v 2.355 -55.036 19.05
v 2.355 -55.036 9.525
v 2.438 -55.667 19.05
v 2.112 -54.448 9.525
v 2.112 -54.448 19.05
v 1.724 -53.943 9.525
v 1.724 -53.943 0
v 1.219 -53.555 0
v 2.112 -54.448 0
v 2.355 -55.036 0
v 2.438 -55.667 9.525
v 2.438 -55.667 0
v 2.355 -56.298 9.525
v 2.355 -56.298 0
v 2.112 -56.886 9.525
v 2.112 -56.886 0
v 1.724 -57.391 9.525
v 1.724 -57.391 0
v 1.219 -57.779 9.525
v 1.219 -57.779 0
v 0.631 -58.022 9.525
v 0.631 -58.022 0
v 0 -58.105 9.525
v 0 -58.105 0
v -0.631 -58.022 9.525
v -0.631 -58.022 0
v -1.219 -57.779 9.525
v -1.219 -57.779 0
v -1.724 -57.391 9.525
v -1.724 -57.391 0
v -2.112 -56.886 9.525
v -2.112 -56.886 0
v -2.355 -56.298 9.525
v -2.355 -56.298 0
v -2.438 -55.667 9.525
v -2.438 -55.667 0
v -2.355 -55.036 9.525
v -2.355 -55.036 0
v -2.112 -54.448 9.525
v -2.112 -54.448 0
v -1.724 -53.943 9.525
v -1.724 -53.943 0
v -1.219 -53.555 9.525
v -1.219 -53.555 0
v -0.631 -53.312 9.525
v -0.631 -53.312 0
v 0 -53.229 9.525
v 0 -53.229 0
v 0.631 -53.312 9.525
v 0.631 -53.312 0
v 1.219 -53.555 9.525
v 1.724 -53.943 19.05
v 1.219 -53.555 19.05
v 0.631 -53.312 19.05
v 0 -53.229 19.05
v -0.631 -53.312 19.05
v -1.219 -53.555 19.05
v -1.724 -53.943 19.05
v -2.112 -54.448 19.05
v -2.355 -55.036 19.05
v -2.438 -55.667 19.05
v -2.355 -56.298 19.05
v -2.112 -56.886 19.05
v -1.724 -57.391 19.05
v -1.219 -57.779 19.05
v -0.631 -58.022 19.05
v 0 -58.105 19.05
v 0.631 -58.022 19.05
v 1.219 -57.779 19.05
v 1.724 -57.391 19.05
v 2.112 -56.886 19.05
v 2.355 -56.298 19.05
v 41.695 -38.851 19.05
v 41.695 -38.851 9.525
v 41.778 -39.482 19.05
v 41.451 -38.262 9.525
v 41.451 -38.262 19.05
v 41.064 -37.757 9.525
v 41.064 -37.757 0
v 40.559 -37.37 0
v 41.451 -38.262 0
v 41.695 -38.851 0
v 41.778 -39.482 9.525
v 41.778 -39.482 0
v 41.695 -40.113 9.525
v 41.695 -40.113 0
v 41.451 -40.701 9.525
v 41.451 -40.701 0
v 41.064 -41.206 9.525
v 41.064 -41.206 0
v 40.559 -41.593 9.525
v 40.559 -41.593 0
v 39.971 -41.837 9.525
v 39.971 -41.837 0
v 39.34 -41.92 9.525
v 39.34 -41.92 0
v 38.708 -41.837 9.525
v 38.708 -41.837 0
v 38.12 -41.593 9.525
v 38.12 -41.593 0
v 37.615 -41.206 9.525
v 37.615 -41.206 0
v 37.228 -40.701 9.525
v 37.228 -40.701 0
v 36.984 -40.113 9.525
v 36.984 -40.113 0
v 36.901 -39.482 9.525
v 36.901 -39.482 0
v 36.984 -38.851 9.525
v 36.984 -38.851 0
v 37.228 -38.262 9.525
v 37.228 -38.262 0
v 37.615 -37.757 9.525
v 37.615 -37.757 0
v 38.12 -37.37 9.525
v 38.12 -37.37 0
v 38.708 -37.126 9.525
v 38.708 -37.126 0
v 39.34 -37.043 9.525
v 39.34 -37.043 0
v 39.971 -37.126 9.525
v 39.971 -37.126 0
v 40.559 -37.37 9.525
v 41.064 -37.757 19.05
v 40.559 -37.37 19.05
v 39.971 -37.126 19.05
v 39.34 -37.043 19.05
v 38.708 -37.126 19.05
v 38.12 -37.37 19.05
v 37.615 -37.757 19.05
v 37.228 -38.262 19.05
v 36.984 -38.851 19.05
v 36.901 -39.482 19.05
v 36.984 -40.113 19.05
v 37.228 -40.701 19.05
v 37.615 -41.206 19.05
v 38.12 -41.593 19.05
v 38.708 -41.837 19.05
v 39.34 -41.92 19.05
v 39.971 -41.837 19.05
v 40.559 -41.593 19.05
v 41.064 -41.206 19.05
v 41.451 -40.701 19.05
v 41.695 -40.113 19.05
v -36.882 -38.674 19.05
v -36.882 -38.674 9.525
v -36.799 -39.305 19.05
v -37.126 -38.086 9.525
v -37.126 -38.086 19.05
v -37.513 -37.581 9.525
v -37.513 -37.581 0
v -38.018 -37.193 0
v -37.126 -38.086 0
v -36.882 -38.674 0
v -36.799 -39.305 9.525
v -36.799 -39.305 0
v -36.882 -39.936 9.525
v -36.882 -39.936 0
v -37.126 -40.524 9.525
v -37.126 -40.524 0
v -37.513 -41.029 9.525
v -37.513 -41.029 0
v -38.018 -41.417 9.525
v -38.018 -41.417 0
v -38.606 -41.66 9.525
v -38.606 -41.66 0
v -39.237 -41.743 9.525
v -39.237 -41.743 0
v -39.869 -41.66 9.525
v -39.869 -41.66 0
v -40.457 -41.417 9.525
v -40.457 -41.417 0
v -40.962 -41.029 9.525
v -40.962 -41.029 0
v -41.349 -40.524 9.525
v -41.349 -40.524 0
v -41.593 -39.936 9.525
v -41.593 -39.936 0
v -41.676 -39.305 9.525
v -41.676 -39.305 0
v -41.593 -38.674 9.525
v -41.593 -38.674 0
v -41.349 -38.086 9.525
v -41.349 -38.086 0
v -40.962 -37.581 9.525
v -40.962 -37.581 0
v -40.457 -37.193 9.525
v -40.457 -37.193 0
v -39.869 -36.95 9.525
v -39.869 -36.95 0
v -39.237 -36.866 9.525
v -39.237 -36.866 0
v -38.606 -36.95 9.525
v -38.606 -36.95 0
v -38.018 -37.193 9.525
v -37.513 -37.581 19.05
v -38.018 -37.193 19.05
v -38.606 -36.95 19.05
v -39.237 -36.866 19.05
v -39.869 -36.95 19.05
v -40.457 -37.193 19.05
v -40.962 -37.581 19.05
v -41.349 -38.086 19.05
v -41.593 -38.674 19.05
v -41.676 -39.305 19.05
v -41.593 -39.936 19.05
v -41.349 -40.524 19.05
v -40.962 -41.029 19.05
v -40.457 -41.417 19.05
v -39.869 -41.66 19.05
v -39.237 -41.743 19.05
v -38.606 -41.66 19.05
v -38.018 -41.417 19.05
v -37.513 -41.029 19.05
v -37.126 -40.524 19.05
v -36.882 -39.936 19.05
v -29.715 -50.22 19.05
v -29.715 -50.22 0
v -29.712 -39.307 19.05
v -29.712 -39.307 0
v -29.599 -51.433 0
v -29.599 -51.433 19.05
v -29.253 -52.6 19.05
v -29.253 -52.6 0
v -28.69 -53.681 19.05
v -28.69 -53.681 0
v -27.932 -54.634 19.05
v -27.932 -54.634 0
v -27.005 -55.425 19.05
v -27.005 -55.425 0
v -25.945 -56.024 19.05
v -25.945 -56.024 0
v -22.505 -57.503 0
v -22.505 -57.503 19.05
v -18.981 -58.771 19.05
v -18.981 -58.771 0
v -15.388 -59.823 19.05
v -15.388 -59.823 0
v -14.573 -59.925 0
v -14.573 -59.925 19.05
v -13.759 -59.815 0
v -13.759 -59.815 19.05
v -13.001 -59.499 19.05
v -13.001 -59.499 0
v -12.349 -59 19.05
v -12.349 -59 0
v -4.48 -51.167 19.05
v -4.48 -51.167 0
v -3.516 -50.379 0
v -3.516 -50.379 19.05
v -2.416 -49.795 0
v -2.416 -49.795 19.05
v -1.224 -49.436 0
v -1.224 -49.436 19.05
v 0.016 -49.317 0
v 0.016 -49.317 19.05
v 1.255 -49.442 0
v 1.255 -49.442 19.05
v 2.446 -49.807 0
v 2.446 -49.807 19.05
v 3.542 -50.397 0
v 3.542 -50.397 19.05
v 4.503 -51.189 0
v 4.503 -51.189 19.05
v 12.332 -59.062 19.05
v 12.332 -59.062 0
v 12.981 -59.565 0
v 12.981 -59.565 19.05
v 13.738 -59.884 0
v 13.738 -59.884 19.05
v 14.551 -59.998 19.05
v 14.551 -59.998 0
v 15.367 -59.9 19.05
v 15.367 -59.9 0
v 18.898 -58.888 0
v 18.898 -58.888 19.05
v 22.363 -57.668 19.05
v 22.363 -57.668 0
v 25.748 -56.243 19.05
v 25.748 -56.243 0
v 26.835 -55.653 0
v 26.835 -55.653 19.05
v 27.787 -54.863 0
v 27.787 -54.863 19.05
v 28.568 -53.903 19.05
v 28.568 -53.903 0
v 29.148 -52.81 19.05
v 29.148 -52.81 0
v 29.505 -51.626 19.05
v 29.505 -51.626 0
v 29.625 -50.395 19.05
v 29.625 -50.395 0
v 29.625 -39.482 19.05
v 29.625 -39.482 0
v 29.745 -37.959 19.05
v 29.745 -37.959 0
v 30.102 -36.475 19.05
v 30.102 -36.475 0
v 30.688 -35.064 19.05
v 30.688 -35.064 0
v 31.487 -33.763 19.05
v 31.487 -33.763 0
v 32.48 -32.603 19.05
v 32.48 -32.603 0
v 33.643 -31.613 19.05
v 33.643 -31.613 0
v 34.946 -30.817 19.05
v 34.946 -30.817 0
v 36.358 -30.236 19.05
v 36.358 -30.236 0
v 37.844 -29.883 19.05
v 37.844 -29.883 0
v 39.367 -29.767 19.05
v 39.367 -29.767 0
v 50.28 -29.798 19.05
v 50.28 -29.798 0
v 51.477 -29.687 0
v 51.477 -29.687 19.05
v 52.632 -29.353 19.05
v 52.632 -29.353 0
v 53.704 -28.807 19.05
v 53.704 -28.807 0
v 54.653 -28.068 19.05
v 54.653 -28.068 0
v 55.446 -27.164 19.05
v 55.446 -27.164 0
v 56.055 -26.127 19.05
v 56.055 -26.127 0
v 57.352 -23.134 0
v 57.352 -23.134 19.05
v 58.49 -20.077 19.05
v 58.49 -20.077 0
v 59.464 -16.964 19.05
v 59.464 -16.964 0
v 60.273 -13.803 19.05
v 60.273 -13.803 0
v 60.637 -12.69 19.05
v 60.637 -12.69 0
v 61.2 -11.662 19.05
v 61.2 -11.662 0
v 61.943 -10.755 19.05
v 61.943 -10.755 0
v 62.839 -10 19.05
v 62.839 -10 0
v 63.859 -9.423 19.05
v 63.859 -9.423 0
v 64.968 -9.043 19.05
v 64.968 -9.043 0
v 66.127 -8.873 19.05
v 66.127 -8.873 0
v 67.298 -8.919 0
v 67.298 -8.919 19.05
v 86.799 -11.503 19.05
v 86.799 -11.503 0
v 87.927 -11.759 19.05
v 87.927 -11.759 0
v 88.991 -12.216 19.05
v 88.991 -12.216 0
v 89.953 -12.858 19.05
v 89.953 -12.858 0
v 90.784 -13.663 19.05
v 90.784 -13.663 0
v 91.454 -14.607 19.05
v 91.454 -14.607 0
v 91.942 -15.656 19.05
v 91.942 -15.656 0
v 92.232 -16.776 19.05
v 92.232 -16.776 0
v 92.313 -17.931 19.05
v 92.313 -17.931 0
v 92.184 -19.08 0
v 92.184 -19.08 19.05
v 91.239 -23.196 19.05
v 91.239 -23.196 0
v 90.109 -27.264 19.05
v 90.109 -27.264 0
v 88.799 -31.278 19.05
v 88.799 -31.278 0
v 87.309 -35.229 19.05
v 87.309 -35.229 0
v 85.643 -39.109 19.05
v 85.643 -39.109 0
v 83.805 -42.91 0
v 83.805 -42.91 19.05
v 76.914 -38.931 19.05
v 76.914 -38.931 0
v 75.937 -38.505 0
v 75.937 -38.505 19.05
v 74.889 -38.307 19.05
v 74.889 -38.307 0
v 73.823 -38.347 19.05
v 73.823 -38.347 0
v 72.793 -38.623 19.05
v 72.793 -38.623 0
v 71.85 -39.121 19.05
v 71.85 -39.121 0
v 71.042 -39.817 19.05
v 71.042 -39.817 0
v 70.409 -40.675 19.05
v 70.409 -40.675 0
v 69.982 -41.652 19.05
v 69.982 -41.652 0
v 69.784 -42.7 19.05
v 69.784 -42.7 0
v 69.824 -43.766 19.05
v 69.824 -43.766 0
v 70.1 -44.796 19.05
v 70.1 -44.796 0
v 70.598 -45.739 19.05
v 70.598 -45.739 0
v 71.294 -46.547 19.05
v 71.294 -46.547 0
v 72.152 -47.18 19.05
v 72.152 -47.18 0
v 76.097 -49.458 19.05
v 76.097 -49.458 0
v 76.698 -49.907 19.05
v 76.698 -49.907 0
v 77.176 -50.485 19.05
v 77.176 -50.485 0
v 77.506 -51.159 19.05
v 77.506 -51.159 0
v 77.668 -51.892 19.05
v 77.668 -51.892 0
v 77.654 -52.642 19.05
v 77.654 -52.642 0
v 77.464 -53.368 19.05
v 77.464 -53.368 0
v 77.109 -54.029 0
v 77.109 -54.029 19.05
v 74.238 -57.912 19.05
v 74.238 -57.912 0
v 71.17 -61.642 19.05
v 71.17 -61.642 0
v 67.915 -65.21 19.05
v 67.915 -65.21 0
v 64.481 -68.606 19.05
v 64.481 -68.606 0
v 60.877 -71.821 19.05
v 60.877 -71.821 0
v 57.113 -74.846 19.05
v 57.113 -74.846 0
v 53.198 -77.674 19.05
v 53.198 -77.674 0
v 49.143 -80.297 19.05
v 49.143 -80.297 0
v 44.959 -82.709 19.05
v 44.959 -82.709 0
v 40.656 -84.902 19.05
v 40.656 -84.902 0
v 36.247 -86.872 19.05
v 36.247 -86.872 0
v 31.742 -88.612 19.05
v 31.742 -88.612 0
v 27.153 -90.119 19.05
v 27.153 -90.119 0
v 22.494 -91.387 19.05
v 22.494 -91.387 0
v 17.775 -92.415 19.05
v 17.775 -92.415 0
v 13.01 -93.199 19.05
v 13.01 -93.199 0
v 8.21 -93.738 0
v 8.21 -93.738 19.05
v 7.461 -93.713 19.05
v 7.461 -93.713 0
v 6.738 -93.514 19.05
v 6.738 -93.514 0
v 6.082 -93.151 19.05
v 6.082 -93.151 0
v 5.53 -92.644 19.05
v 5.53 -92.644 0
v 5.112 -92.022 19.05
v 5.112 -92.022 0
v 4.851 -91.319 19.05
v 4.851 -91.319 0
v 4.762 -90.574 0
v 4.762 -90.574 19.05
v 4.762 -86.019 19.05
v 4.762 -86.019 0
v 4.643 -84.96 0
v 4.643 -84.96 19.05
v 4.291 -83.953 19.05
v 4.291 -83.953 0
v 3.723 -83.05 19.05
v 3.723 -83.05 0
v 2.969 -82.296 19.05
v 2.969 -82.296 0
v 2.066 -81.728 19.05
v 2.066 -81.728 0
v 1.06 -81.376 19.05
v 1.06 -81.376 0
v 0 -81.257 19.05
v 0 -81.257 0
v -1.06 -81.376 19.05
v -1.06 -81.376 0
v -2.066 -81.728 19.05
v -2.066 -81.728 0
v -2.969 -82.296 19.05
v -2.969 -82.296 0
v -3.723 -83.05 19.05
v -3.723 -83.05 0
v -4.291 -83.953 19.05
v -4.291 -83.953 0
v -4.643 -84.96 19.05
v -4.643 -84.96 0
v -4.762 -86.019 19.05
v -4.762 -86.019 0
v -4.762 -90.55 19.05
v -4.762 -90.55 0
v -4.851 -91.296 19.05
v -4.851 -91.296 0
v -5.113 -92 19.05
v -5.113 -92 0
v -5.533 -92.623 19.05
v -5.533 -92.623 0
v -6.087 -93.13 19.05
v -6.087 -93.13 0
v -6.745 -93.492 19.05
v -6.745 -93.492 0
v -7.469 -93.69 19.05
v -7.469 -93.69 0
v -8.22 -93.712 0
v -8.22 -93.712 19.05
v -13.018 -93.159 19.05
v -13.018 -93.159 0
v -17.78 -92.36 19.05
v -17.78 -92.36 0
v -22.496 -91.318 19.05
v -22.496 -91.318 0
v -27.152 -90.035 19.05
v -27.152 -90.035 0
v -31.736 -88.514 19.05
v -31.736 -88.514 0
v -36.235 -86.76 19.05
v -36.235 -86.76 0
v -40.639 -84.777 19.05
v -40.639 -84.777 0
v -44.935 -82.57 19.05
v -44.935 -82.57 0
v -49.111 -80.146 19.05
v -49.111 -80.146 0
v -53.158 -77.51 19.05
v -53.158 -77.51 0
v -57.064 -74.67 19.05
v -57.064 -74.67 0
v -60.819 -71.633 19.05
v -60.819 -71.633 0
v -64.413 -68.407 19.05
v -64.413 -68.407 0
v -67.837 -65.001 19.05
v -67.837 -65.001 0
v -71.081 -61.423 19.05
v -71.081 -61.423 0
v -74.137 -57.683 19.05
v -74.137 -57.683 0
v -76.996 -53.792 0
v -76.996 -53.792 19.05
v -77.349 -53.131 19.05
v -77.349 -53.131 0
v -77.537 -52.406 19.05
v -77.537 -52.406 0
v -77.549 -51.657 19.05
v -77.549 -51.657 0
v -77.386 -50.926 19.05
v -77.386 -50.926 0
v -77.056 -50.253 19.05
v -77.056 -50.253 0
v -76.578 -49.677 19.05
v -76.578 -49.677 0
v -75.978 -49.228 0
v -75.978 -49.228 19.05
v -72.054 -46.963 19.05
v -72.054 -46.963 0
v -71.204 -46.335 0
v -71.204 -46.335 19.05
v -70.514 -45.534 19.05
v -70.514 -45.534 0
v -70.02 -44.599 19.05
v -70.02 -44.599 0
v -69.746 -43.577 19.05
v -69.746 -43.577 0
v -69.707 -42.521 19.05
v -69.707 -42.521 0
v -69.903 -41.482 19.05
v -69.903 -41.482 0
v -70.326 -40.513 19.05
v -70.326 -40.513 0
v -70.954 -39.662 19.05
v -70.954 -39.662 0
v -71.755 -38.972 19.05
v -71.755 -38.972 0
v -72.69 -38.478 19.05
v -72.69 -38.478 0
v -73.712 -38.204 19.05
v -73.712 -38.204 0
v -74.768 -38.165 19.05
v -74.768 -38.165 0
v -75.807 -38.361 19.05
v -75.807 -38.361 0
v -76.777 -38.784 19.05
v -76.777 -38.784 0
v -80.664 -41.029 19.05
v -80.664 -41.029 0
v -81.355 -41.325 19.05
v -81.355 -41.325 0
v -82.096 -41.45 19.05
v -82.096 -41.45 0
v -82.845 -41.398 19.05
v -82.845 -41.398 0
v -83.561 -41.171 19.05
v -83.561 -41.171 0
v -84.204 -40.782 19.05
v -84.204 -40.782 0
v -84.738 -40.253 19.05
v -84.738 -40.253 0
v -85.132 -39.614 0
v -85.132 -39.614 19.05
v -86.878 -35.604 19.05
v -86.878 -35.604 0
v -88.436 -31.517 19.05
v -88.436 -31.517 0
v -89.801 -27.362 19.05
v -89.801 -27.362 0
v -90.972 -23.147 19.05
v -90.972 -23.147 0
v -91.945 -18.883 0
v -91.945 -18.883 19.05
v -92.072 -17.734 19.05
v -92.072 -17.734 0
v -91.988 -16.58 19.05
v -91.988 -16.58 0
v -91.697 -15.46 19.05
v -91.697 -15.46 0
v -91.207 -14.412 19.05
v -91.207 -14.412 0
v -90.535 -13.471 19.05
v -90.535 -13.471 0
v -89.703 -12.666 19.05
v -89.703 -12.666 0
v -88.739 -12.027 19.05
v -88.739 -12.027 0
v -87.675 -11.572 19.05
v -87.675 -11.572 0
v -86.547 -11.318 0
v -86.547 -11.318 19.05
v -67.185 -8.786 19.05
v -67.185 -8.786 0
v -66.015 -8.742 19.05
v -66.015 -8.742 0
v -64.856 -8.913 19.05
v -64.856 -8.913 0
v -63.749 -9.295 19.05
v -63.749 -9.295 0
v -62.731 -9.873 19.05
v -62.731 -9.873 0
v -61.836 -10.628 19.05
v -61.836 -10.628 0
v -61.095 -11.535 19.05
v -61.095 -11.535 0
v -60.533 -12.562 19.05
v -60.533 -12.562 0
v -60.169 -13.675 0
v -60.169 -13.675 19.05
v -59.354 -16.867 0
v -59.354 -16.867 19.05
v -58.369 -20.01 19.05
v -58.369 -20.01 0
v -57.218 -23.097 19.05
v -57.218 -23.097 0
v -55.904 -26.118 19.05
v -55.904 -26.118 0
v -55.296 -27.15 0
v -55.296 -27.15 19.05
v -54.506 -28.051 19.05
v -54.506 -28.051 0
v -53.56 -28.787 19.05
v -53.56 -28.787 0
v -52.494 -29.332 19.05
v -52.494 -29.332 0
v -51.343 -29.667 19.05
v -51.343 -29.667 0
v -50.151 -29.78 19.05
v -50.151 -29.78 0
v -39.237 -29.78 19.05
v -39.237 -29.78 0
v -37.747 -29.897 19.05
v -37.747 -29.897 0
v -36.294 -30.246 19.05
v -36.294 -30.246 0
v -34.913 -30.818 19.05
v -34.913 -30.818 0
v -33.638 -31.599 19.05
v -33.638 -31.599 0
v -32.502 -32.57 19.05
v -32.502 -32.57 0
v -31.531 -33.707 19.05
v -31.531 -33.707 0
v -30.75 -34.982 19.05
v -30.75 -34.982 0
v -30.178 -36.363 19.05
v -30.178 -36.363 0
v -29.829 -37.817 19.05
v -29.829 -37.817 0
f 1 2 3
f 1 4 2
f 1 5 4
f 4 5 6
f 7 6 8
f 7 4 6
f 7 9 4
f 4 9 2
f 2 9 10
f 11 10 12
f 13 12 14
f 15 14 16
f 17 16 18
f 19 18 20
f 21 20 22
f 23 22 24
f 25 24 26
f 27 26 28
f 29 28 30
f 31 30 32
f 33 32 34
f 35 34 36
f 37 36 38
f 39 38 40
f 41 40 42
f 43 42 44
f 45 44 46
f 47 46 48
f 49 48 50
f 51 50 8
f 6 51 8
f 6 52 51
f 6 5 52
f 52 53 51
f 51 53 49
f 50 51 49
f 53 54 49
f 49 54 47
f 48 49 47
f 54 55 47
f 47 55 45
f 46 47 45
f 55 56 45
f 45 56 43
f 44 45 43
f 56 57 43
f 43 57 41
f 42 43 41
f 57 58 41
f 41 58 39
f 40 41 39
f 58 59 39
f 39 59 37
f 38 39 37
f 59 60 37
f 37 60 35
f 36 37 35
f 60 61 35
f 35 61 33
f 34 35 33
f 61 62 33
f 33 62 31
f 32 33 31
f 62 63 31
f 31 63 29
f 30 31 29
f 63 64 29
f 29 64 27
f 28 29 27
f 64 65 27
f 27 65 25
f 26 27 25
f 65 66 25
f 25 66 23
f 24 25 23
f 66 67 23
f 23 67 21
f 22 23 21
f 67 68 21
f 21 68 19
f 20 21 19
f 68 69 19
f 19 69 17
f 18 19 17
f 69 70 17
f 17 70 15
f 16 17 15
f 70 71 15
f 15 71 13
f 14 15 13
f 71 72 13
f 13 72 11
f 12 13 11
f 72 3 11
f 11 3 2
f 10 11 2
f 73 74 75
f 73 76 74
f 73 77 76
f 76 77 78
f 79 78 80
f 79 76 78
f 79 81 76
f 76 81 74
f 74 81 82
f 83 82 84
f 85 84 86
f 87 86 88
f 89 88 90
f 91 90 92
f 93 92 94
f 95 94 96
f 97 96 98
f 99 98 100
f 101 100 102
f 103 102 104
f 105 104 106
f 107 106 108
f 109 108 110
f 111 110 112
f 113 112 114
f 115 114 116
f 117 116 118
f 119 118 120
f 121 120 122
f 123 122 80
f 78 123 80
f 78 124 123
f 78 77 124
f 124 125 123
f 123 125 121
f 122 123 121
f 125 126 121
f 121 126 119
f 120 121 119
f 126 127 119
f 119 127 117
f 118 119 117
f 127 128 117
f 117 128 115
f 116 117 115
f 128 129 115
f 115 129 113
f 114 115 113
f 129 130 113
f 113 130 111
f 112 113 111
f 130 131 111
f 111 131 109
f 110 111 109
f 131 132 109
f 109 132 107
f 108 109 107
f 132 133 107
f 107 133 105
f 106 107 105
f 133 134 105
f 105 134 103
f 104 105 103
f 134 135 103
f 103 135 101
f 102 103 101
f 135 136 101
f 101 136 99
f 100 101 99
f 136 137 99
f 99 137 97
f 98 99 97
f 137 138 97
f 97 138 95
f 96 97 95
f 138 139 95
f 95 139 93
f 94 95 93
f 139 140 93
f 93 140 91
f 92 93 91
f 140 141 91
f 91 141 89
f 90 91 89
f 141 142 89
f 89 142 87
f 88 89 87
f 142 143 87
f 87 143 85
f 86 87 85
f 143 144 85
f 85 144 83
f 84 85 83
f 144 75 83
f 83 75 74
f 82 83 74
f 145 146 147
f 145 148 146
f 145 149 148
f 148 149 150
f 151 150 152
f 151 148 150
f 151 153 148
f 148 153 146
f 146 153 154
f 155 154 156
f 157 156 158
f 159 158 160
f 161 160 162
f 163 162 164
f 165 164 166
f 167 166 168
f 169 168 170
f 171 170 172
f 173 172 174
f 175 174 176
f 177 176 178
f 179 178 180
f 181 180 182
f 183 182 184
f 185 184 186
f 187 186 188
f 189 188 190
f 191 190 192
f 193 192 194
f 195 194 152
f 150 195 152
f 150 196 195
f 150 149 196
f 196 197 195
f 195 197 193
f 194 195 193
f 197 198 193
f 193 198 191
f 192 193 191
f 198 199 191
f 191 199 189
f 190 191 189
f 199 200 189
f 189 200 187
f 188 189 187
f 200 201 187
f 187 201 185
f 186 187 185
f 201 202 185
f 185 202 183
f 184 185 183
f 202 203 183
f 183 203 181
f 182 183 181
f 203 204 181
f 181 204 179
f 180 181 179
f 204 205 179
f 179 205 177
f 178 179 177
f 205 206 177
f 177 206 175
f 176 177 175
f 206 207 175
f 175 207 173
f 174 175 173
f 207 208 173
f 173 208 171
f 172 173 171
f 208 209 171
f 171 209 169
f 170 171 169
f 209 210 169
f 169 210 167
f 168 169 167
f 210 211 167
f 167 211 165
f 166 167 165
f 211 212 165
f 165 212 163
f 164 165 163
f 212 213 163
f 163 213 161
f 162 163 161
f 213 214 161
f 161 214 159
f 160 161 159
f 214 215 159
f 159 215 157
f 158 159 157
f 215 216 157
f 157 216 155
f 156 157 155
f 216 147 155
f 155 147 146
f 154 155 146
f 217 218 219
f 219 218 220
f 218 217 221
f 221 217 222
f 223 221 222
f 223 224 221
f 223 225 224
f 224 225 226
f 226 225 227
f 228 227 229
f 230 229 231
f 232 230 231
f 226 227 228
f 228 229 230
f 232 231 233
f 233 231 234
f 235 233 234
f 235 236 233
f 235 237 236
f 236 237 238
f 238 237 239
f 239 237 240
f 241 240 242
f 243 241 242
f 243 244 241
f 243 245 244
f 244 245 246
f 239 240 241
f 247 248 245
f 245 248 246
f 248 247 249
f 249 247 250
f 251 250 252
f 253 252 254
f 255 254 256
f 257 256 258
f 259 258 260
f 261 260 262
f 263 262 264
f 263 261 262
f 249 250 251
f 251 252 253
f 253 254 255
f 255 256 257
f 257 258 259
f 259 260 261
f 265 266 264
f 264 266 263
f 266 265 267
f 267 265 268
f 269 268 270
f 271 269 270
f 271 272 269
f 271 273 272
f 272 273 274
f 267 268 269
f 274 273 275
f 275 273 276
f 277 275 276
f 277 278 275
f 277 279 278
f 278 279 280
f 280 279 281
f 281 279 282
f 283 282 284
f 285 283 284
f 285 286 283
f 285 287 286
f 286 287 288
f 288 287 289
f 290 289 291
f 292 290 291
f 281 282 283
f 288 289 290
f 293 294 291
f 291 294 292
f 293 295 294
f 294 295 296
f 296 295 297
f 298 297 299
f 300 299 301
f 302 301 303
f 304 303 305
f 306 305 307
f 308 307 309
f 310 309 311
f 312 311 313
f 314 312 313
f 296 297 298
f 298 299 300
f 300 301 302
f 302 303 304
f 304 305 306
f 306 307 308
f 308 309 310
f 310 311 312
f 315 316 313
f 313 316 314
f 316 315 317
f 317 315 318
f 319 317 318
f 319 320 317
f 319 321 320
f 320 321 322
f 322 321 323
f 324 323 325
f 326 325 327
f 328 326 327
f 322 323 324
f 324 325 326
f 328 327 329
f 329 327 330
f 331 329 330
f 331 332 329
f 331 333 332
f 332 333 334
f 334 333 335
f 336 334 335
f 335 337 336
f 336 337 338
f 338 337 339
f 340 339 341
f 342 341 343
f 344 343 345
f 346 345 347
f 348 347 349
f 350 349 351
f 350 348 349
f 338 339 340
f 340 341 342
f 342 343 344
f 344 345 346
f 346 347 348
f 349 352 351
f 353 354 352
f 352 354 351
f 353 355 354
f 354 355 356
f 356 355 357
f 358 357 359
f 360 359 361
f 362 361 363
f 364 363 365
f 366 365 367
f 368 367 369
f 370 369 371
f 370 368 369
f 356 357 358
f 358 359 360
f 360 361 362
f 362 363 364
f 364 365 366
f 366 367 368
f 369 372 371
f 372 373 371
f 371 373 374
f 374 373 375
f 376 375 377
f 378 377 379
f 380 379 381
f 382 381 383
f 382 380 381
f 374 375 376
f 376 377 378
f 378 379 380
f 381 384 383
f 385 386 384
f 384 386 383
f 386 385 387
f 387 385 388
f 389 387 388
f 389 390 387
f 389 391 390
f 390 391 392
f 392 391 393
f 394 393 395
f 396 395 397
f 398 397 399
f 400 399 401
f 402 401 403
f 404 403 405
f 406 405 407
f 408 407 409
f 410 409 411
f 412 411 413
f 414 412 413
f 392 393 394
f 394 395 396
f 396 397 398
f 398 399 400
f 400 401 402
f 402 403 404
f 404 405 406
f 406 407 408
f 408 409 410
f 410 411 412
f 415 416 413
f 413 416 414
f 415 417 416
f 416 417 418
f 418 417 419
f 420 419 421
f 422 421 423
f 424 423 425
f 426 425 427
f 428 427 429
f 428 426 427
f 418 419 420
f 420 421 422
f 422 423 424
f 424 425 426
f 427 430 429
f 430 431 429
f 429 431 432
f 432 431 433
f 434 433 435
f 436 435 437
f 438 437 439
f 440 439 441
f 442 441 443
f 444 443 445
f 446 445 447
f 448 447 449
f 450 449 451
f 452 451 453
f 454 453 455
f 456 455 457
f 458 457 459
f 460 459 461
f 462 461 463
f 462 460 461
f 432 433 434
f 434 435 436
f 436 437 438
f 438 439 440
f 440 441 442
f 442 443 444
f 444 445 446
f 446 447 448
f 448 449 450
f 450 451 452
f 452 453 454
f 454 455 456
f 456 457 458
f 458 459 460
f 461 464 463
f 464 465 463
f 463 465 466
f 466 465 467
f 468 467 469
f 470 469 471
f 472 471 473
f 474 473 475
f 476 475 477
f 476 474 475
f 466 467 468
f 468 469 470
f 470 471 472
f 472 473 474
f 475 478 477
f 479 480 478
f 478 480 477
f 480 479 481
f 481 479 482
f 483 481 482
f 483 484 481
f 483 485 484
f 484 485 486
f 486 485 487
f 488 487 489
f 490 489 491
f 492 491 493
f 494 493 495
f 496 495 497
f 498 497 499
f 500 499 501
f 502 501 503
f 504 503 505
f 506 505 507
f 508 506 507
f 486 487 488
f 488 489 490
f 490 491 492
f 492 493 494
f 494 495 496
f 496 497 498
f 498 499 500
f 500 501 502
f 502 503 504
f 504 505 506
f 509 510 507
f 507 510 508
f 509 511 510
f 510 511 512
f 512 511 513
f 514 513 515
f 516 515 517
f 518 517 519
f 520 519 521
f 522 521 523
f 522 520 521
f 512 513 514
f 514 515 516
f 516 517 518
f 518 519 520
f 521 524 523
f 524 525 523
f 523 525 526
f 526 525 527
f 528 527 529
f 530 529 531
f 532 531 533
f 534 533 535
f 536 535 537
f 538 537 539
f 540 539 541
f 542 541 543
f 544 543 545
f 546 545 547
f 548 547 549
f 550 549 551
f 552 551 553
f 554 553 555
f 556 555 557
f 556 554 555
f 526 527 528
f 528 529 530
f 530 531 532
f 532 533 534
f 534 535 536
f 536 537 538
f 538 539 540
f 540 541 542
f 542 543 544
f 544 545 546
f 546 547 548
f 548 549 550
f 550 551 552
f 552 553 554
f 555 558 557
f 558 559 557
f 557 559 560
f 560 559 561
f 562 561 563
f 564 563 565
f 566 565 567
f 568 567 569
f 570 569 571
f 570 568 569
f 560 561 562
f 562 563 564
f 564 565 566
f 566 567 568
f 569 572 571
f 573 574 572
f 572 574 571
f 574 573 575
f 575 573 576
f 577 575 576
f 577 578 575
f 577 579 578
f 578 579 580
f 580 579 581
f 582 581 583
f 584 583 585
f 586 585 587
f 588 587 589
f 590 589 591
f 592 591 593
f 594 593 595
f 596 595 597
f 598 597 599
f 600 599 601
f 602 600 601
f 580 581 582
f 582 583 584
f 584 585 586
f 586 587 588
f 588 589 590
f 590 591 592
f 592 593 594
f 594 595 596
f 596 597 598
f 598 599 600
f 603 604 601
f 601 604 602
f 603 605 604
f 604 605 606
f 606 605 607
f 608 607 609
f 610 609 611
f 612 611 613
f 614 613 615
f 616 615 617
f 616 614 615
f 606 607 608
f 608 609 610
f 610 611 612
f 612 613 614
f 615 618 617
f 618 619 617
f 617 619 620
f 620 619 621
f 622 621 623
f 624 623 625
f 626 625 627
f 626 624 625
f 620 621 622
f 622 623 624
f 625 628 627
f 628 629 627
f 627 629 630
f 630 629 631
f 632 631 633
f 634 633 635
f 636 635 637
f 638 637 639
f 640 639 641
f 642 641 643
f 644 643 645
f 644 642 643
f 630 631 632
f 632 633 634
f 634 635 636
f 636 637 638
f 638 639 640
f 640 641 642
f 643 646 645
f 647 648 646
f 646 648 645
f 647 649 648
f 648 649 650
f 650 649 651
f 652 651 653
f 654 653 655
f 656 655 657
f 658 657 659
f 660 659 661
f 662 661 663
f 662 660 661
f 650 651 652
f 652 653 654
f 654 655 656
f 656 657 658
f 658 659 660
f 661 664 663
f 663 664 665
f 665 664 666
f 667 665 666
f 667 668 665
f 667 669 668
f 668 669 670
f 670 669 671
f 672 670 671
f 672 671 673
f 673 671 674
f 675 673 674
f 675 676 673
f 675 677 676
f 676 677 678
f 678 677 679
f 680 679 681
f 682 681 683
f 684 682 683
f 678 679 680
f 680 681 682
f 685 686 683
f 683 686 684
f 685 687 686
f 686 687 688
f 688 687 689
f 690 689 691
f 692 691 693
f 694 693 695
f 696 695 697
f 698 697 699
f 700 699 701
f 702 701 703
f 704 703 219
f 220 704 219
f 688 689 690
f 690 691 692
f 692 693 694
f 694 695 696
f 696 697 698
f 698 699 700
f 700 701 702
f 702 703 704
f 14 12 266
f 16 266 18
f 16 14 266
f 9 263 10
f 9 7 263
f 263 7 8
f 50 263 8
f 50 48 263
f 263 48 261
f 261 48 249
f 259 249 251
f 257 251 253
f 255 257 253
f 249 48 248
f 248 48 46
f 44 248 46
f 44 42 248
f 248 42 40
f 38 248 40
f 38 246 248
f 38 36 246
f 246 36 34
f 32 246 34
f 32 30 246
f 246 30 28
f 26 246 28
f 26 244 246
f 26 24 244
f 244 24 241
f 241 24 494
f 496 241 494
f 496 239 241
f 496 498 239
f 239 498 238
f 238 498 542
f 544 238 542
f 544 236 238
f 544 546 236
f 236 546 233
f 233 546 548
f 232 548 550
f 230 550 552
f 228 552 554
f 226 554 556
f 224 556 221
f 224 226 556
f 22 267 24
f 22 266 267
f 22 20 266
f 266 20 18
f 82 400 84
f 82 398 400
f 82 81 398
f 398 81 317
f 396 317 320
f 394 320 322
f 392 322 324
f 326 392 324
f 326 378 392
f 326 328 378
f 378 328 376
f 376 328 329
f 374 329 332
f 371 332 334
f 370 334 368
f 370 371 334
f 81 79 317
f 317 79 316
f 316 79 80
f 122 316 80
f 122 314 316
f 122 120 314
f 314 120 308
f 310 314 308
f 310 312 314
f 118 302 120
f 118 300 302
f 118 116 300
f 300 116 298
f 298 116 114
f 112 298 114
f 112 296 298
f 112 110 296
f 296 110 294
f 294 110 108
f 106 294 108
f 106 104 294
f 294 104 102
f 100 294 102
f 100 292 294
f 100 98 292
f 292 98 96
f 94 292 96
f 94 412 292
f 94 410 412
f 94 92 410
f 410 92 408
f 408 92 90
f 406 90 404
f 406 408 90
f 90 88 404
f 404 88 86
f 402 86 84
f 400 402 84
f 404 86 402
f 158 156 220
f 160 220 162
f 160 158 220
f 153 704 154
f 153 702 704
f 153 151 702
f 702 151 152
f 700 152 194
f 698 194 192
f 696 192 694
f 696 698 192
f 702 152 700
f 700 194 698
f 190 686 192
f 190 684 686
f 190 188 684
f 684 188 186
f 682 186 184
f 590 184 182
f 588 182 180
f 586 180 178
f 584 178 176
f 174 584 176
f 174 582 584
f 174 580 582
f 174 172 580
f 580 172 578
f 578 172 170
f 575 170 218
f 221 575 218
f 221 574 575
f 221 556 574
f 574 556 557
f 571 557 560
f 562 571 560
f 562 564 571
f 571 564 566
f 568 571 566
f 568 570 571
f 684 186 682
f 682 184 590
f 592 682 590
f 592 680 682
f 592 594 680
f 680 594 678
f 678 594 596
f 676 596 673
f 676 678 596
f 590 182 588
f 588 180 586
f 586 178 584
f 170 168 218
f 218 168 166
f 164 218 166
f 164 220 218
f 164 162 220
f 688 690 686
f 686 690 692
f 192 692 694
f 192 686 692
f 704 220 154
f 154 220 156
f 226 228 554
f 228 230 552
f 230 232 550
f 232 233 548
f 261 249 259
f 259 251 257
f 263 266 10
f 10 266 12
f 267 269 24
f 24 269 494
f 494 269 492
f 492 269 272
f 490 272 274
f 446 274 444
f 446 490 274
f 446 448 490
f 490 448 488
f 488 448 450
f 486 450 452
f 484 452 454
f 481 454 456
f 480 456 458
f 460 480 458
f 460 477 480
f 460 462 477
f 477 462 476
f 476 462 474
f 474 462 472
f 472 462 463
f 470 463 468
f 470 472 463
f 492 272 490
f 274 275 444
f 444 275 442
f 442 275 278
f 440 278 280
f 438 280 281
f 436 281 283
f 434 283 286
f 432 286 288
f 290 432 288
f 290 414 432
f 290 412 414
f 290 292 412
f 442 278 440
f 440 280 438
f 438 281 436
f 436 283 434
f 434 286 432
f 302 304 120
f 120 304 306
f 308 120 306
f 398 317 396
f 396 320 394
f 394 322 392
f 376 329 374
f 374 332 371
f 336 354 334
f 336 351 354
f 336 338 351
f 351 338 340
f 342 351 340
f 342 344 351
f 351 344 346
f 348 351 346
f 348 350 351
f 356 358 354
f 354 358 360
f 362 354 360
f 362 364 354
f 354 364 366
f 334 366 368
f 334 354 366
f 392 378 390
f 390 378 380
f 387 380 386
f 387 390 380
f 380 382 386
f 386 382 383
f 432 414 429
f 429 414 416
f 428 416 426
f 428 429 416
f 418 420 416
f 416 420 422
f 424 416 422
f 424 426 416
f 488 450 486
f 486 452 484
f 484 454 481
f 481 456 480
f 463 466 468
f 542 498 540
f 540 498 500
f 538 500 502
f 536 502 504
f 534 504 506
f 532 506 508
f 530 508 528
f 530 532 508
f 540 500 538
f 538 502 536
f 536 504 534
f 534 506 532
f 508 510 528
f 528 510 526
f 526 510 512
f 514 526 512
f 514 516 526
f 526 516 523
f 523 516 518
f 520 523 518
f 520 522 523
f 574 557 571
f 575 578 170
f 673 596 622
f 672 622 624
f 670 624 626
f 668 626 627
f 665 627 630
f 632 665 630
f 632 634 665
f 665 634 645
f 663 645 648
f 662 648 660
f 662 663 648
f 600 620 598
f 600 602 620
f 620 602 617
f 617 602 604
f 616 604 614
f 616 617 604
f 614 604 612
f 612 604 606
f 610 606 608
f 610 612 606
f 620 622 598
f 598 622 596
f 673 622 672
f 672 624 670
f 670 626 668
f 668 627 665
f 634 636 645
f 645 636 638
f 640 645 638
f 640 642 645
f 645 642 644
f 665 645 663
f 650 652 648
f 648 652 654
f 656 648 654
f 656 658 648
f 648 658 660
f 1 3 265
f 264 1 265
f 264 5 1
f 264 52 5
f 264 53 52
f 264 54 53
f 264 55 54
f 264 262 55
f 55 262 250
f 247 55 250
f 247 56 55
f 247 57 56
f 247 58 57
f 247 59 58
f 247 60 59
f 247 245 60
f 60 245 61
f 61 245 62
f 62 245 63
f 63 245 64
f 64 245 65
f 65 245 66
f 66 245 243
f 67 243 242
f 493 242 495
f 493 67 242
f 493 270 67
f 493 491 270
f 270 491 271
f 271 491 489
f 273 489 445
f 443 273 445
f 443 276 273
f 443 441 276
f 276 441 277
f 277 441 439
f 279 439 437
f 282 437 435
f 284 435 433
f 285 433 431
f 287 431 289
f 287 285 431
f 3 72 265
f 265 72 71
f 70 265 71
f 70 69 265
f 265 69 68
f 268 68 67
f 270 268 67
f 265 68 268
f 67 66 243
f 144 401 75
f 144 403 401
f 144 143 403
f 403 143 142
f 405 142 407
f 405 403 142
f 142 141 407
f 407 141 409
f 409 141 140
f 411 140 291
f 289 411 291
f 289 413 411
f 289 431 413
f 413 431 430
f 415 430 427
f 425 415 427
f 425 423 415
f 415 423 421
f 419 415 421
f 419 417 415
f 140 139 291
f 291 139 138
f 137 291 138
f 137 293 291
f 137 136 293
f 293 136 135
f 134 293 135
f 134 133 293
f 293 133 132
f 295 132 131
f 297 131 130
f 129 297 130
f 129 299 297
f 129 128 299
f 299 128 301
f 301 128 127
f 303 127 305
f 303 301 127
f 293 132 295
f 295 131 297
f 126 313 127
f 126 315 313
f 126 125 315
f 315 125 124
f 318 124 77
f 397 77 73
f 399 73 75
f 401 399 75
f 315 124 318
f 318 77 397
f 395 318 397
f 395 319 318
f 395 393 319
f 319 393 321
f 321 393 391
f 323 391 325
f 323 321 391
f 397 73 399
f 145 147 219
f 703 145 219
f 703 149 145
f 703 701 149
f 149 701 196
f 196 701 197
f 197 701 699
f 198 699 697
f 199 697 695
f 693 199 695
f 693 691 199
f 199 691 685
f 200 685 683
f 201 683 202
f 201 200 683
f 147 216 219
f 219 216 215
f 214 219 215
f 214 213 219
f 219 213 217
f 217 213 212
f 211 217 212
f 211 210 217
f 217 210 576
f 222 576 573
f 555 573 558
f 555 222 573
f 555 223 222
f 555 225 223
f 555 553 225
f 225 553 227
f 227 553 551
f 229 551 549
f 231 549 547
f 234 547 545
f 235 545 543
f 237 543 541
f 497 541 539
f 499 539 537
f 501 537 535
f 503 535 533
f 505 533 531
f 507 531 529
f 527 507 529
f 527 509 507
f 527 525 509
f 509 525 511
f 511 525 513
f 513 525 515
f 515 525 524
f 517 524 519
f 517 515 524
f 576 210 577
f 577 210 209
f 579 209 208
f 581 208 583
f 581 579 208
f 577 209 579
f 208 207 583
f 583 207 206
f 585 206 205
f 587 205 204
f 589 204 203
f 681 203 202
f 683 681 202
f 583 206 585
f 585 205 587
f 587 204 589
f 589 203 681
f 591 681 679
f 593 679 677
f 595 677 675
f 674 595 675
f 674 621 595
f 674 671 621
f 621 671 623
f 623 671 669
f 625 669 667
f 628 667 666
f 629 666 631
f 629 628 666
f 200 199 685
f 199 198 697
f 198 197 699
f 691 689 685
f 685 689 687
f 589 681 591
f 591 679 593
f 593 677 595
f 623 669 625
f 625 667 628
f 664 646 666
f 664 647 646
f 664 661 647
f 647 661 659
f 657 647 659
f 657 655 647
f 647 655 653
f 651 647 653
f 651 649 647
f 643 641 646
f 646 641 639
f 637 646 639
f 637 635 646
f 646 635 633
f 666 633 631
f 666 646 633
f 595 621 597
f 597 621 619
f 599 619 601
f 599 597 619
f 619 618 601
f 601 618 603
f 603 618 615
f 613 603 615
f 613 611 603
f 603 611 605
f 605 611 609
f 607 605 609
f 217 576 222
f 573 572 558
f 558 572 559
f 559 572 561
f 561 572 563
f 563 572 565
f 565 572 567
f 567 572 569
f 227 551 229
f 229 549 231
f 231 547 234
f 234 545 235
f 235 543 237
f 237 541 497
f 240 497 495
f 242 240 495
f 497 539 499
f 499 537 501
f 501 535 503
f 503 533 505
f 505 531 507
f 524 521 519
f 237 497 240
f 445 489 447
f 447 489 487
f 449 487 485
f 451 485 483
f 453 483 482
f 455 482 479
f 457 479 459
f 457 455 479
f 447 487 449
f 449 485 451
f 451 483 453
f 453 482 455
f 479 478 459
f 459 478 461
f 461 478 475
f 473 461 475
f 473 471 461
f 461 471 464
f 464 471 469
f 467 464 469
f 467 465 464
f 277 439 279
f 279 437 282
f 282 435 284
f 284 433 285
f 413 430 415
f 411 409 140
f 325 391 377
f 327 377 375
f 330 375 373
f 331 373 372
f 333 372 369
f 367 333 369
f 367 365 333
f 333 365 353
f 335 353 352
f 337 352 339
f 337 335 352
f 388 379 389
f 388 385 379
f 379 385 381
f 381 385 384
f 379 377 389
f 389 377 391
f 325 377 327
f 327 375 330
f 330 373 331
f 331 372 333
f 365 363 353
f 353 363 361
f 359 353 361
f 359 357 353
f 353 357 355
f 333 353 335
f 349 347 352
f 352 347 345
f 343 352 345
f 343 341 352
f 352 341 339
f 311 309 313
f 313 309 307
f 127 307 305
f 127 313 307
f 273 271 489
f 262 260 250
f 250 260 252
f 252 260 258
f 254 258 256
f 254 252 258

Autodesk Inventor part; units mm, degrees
ref_plane "YZ Plane" through (0, 0, 0) normal (1, 0, 0) x (0, 1, 0)
ref_plane "XZ Plane" through (0, 0, 0) normal (0, 1, 0) x (-1, 0, 0)
ref_plane "XY Plane" through (0, 0, 0) normal (0, 0, 1) x (1, 0, 0)
sketch "Sketch1" plane through (0, 0, 0) normal (0, 0, 1) x (1, 0, 0)
  line L0 (0, 0) -> (-61.1827, -8.0012) construction
  line L1 (61.2899, -8.1227) -> (0, 0) construction
  line L2 (86.7988, -11.5034) -> (67.2983, -8.919)
  line L3 (-67.1847, -8.7862) -> (-86.5468, -11.3183)
  line L4 (0, 0) -> (0, -62.0753) construction
  line L5 (61.2899, -8.1227) -> (0, -62.0753) construction
  line L6 (-61.1827, -8.0012) -> (0, -62.0753) construction
  arc A0 (-29.7125, -39.3071) -> (-39.2375, -29.7799) centre (-39.2375, -39.3049) ccw
  arc A1 (-60.1692, -13.6752) -> (-55.9036, -26.1177) centre (0, 0) ccw
  arc A2 (56.0545, -26.1271) -> (60.2727, -13.8035) centre (0.1394, -0.1047) ccw
  line L7 (-50.1505, -29.7799) -> (-39.2375, -29.7799)
  line L8 (-29.7125, -39.3071) -> (-29.7151, -50.2201)
  arc A3 (39.3667, -29.7672) -> (29.6251, -39.4816) centre (39.3395, -39.4816) ccw
  line L9 (29.6251, -39.4816) -> (29.6251, -50.3946)
  line L10 (39.3667, -29.7672) -> (50.2797, -29.7978)
  circle A4 centre (0.1394, -0.1047) radius 55.5625 construction
  line L11 (-39.2375, -39.3049) -> (0.1394, -0.1047) construction
  line L12 (0.1394, -0.1047) -> (39.3395, -39.4816) construction
  line L13 (39.3395, -39.4816) -> (0, -62.0753) construction
  line L14 (-39.2375, -39.3049) -> (0, -62.0753) construction
  circle A5 centre (-39.2375, -39.3049) radius 2.4384
  circle A6 centre (39.3395, -39.4816) radius 2.4384
  arc A7 (-91.9453, -18.8835) -> (-85.1324, -39.6138) centre (0.1394, -0.1047) ccw
  arc A8 (-76.9964, -53.7918) -> (-8.2199, -93.7122) centre (0.1394, -0.1047) ccw
  arc A9 (8.2102, -93.7375) -> (77.1094, -54.0293) centre (0.1394, -0.1047) ccw
  arc A10 (83.8051, -42.9099) -> (92.1837, -19.0805) centre (0.1394, -0.1047) ccw
  line L15 (-93.0629, -12.1704) -> (-83.6165, -42.7332) construction
  line L16 (-78.9151, -50.9242) -> (-4.7625, -93.9568) construction
  line L17 (4.7625, -93.9709) -> (79.0426, -51.1588) construction
  line L18 (83.8051, -42.9099) -> (93.316, -12.3671) construction
  line L19 (0, -62.0753) -> (0, -103.9027) construction
  line L20 (-4.7625, -90.5498) -> (-4.7625, -86.0193)
  line L21 (4.7625, -86.0193) -> (4.7625, -90.5743)
  arc A11 (4.7625, -86.0193) -> (-4.7625, -86.0193) centre (0, -86.0193) ccw
  line L22 (0.1394, -0.1047) -> (81.6013, -47.1368) construction
  line L23 (83.8051, -42.9099) -> (76.9144, -38.9315)
  line L24 (72.1519, -47.1804) -> (76.0966, -49.4579)
  arc A12 (76.9144, -38.9315) -> (72.1519, -47.1804) centre (74.5331, -43.0559) ccw
  line L25 (0.1394, -0.1047) -> (-92.6905, -53.7001) construction
  line L26 (-80.6641, -41.0286) -> (-76.7766, -38.7842)
  line L27 (-72.0545, -46.9632) -> (-75.978, -49.2284)
  arc A13 (-72.0545, -46.9632) -> (-76.7766, -38.7842) centre (-74.4155, -42.8737) ccw
  arc A14 (-86.5468, -11.3183) -> (-91.9453, -18.8835) centre (-85.7234, -17.6146) ccw
  arc A15 (-60.1692, -13.6752) -> (-67.1847, -8.7862) centre (-66.3613, -15.0825) ccw
  arc A16 (-55.9036, -26.1177) -> (-50.1505, -29.7799) centre (-50.1505, -23.4299) ccw
  arc A17 (-29.7151, -50.2201) -> (-25.945, -56.0239) centre (-23.3651, -50.2216) ccw
  arc A18 (25.7485, -56.2431) -> (29.6251, -50.3946) centre (23.2751, -50.3946) ccw
  arc A19 (50.2797, -29.7978) -> (56.0545, -26.1271) centre (50.2975, -23.4478) ccw
  arc A20 (67.2983, -8.919) -> (60.2727, -13.8035) centre (66.464, -15.2139) ccw
  arc A21 (92.1837, -19.0805) -> (86.7988, -11.5034) centre (85.9645, -17.7983) ccw
  arc A22 (-85.1324, -39.6138) -> (-80.6641, -41.0286) centre (-82.2516, -38.279) ccw
  arc A23 (-75.978, -49.2284) -> (-76.9964, -53.7918) centre (-74.3905, -51.9781) ccw
  arc A24 (-8.2199, -93.7122) -> (-4.7625, -90.5498) centre (-7.9375, -90.5498) ccw
  arc A25 (4.7625, -90.5743) -> (8.2102, -93.7375) centre (7.9375, -90.5743) ccw
  arc A26 (77.1094, -54.0293) -> (76.0966, -49.4579) centre (74.5091, -52.2075) ccw
  arc A27 (4.5025, -51.1894) -> (-4.48, -51.1668) centre (0, -55.667) ccw
  arc A28 (-25.945, -56.0239) -> (-15.3876, -59.8229) centre (0.1394, -0.1047) ccw
  arc A29 (15.3666, -59.9) -> (25.7485, -56.2431) centre (0.1394, -0.1047) ccw
  line L28 (-4.48, -51.1668) -> (-12.3487, -59.0002)
  line L29 (4.5025, -51.1894) -> (12.3318, -59.0621)
  arc A30 (-15.3876, -59.8229) -> (-12.3487, -59.0002) centre (-14.5887, -56.75) ccw
  arc A31 (12.3318, -59.0621) -> (15.3666, -59.9) centre (14.5831, -56.8232) ccw
  circle A32 centre (0, -55.667) radius 2.4384
  point P0 (-54.0417, -29.7799)
  point P1 (-29.716, -54.3478)
  point P2 (29.6251, -54.3566)
  point P3 (54.1888, -29.8087)
  point P4 (-13.611, -60.2568)
  point P5 (13.5878, -60.325)
  dimension "d2" = 165
  dimension "d5" = 9.525
  dimension "d7" = 111.125
  dimension "d8" = 4.8768
  dimension "d9" = 93.98
  dimension "d10" = 4.7625
  dimension "d11" = 60
  dimension "d12" = 7.9375
  dimension "d13" = 60
  dimension "d16" = 6.35
  dimension "d17" = 3.175
  dimension "d18" = 6.35
  dimension "d19" = 3.175
extrude "Extrusion3" add sketch "Sketch1" along normal blind 19.05
properties part number "IFI_Wheel_Weight_8in" material "Aluminum-6061"
